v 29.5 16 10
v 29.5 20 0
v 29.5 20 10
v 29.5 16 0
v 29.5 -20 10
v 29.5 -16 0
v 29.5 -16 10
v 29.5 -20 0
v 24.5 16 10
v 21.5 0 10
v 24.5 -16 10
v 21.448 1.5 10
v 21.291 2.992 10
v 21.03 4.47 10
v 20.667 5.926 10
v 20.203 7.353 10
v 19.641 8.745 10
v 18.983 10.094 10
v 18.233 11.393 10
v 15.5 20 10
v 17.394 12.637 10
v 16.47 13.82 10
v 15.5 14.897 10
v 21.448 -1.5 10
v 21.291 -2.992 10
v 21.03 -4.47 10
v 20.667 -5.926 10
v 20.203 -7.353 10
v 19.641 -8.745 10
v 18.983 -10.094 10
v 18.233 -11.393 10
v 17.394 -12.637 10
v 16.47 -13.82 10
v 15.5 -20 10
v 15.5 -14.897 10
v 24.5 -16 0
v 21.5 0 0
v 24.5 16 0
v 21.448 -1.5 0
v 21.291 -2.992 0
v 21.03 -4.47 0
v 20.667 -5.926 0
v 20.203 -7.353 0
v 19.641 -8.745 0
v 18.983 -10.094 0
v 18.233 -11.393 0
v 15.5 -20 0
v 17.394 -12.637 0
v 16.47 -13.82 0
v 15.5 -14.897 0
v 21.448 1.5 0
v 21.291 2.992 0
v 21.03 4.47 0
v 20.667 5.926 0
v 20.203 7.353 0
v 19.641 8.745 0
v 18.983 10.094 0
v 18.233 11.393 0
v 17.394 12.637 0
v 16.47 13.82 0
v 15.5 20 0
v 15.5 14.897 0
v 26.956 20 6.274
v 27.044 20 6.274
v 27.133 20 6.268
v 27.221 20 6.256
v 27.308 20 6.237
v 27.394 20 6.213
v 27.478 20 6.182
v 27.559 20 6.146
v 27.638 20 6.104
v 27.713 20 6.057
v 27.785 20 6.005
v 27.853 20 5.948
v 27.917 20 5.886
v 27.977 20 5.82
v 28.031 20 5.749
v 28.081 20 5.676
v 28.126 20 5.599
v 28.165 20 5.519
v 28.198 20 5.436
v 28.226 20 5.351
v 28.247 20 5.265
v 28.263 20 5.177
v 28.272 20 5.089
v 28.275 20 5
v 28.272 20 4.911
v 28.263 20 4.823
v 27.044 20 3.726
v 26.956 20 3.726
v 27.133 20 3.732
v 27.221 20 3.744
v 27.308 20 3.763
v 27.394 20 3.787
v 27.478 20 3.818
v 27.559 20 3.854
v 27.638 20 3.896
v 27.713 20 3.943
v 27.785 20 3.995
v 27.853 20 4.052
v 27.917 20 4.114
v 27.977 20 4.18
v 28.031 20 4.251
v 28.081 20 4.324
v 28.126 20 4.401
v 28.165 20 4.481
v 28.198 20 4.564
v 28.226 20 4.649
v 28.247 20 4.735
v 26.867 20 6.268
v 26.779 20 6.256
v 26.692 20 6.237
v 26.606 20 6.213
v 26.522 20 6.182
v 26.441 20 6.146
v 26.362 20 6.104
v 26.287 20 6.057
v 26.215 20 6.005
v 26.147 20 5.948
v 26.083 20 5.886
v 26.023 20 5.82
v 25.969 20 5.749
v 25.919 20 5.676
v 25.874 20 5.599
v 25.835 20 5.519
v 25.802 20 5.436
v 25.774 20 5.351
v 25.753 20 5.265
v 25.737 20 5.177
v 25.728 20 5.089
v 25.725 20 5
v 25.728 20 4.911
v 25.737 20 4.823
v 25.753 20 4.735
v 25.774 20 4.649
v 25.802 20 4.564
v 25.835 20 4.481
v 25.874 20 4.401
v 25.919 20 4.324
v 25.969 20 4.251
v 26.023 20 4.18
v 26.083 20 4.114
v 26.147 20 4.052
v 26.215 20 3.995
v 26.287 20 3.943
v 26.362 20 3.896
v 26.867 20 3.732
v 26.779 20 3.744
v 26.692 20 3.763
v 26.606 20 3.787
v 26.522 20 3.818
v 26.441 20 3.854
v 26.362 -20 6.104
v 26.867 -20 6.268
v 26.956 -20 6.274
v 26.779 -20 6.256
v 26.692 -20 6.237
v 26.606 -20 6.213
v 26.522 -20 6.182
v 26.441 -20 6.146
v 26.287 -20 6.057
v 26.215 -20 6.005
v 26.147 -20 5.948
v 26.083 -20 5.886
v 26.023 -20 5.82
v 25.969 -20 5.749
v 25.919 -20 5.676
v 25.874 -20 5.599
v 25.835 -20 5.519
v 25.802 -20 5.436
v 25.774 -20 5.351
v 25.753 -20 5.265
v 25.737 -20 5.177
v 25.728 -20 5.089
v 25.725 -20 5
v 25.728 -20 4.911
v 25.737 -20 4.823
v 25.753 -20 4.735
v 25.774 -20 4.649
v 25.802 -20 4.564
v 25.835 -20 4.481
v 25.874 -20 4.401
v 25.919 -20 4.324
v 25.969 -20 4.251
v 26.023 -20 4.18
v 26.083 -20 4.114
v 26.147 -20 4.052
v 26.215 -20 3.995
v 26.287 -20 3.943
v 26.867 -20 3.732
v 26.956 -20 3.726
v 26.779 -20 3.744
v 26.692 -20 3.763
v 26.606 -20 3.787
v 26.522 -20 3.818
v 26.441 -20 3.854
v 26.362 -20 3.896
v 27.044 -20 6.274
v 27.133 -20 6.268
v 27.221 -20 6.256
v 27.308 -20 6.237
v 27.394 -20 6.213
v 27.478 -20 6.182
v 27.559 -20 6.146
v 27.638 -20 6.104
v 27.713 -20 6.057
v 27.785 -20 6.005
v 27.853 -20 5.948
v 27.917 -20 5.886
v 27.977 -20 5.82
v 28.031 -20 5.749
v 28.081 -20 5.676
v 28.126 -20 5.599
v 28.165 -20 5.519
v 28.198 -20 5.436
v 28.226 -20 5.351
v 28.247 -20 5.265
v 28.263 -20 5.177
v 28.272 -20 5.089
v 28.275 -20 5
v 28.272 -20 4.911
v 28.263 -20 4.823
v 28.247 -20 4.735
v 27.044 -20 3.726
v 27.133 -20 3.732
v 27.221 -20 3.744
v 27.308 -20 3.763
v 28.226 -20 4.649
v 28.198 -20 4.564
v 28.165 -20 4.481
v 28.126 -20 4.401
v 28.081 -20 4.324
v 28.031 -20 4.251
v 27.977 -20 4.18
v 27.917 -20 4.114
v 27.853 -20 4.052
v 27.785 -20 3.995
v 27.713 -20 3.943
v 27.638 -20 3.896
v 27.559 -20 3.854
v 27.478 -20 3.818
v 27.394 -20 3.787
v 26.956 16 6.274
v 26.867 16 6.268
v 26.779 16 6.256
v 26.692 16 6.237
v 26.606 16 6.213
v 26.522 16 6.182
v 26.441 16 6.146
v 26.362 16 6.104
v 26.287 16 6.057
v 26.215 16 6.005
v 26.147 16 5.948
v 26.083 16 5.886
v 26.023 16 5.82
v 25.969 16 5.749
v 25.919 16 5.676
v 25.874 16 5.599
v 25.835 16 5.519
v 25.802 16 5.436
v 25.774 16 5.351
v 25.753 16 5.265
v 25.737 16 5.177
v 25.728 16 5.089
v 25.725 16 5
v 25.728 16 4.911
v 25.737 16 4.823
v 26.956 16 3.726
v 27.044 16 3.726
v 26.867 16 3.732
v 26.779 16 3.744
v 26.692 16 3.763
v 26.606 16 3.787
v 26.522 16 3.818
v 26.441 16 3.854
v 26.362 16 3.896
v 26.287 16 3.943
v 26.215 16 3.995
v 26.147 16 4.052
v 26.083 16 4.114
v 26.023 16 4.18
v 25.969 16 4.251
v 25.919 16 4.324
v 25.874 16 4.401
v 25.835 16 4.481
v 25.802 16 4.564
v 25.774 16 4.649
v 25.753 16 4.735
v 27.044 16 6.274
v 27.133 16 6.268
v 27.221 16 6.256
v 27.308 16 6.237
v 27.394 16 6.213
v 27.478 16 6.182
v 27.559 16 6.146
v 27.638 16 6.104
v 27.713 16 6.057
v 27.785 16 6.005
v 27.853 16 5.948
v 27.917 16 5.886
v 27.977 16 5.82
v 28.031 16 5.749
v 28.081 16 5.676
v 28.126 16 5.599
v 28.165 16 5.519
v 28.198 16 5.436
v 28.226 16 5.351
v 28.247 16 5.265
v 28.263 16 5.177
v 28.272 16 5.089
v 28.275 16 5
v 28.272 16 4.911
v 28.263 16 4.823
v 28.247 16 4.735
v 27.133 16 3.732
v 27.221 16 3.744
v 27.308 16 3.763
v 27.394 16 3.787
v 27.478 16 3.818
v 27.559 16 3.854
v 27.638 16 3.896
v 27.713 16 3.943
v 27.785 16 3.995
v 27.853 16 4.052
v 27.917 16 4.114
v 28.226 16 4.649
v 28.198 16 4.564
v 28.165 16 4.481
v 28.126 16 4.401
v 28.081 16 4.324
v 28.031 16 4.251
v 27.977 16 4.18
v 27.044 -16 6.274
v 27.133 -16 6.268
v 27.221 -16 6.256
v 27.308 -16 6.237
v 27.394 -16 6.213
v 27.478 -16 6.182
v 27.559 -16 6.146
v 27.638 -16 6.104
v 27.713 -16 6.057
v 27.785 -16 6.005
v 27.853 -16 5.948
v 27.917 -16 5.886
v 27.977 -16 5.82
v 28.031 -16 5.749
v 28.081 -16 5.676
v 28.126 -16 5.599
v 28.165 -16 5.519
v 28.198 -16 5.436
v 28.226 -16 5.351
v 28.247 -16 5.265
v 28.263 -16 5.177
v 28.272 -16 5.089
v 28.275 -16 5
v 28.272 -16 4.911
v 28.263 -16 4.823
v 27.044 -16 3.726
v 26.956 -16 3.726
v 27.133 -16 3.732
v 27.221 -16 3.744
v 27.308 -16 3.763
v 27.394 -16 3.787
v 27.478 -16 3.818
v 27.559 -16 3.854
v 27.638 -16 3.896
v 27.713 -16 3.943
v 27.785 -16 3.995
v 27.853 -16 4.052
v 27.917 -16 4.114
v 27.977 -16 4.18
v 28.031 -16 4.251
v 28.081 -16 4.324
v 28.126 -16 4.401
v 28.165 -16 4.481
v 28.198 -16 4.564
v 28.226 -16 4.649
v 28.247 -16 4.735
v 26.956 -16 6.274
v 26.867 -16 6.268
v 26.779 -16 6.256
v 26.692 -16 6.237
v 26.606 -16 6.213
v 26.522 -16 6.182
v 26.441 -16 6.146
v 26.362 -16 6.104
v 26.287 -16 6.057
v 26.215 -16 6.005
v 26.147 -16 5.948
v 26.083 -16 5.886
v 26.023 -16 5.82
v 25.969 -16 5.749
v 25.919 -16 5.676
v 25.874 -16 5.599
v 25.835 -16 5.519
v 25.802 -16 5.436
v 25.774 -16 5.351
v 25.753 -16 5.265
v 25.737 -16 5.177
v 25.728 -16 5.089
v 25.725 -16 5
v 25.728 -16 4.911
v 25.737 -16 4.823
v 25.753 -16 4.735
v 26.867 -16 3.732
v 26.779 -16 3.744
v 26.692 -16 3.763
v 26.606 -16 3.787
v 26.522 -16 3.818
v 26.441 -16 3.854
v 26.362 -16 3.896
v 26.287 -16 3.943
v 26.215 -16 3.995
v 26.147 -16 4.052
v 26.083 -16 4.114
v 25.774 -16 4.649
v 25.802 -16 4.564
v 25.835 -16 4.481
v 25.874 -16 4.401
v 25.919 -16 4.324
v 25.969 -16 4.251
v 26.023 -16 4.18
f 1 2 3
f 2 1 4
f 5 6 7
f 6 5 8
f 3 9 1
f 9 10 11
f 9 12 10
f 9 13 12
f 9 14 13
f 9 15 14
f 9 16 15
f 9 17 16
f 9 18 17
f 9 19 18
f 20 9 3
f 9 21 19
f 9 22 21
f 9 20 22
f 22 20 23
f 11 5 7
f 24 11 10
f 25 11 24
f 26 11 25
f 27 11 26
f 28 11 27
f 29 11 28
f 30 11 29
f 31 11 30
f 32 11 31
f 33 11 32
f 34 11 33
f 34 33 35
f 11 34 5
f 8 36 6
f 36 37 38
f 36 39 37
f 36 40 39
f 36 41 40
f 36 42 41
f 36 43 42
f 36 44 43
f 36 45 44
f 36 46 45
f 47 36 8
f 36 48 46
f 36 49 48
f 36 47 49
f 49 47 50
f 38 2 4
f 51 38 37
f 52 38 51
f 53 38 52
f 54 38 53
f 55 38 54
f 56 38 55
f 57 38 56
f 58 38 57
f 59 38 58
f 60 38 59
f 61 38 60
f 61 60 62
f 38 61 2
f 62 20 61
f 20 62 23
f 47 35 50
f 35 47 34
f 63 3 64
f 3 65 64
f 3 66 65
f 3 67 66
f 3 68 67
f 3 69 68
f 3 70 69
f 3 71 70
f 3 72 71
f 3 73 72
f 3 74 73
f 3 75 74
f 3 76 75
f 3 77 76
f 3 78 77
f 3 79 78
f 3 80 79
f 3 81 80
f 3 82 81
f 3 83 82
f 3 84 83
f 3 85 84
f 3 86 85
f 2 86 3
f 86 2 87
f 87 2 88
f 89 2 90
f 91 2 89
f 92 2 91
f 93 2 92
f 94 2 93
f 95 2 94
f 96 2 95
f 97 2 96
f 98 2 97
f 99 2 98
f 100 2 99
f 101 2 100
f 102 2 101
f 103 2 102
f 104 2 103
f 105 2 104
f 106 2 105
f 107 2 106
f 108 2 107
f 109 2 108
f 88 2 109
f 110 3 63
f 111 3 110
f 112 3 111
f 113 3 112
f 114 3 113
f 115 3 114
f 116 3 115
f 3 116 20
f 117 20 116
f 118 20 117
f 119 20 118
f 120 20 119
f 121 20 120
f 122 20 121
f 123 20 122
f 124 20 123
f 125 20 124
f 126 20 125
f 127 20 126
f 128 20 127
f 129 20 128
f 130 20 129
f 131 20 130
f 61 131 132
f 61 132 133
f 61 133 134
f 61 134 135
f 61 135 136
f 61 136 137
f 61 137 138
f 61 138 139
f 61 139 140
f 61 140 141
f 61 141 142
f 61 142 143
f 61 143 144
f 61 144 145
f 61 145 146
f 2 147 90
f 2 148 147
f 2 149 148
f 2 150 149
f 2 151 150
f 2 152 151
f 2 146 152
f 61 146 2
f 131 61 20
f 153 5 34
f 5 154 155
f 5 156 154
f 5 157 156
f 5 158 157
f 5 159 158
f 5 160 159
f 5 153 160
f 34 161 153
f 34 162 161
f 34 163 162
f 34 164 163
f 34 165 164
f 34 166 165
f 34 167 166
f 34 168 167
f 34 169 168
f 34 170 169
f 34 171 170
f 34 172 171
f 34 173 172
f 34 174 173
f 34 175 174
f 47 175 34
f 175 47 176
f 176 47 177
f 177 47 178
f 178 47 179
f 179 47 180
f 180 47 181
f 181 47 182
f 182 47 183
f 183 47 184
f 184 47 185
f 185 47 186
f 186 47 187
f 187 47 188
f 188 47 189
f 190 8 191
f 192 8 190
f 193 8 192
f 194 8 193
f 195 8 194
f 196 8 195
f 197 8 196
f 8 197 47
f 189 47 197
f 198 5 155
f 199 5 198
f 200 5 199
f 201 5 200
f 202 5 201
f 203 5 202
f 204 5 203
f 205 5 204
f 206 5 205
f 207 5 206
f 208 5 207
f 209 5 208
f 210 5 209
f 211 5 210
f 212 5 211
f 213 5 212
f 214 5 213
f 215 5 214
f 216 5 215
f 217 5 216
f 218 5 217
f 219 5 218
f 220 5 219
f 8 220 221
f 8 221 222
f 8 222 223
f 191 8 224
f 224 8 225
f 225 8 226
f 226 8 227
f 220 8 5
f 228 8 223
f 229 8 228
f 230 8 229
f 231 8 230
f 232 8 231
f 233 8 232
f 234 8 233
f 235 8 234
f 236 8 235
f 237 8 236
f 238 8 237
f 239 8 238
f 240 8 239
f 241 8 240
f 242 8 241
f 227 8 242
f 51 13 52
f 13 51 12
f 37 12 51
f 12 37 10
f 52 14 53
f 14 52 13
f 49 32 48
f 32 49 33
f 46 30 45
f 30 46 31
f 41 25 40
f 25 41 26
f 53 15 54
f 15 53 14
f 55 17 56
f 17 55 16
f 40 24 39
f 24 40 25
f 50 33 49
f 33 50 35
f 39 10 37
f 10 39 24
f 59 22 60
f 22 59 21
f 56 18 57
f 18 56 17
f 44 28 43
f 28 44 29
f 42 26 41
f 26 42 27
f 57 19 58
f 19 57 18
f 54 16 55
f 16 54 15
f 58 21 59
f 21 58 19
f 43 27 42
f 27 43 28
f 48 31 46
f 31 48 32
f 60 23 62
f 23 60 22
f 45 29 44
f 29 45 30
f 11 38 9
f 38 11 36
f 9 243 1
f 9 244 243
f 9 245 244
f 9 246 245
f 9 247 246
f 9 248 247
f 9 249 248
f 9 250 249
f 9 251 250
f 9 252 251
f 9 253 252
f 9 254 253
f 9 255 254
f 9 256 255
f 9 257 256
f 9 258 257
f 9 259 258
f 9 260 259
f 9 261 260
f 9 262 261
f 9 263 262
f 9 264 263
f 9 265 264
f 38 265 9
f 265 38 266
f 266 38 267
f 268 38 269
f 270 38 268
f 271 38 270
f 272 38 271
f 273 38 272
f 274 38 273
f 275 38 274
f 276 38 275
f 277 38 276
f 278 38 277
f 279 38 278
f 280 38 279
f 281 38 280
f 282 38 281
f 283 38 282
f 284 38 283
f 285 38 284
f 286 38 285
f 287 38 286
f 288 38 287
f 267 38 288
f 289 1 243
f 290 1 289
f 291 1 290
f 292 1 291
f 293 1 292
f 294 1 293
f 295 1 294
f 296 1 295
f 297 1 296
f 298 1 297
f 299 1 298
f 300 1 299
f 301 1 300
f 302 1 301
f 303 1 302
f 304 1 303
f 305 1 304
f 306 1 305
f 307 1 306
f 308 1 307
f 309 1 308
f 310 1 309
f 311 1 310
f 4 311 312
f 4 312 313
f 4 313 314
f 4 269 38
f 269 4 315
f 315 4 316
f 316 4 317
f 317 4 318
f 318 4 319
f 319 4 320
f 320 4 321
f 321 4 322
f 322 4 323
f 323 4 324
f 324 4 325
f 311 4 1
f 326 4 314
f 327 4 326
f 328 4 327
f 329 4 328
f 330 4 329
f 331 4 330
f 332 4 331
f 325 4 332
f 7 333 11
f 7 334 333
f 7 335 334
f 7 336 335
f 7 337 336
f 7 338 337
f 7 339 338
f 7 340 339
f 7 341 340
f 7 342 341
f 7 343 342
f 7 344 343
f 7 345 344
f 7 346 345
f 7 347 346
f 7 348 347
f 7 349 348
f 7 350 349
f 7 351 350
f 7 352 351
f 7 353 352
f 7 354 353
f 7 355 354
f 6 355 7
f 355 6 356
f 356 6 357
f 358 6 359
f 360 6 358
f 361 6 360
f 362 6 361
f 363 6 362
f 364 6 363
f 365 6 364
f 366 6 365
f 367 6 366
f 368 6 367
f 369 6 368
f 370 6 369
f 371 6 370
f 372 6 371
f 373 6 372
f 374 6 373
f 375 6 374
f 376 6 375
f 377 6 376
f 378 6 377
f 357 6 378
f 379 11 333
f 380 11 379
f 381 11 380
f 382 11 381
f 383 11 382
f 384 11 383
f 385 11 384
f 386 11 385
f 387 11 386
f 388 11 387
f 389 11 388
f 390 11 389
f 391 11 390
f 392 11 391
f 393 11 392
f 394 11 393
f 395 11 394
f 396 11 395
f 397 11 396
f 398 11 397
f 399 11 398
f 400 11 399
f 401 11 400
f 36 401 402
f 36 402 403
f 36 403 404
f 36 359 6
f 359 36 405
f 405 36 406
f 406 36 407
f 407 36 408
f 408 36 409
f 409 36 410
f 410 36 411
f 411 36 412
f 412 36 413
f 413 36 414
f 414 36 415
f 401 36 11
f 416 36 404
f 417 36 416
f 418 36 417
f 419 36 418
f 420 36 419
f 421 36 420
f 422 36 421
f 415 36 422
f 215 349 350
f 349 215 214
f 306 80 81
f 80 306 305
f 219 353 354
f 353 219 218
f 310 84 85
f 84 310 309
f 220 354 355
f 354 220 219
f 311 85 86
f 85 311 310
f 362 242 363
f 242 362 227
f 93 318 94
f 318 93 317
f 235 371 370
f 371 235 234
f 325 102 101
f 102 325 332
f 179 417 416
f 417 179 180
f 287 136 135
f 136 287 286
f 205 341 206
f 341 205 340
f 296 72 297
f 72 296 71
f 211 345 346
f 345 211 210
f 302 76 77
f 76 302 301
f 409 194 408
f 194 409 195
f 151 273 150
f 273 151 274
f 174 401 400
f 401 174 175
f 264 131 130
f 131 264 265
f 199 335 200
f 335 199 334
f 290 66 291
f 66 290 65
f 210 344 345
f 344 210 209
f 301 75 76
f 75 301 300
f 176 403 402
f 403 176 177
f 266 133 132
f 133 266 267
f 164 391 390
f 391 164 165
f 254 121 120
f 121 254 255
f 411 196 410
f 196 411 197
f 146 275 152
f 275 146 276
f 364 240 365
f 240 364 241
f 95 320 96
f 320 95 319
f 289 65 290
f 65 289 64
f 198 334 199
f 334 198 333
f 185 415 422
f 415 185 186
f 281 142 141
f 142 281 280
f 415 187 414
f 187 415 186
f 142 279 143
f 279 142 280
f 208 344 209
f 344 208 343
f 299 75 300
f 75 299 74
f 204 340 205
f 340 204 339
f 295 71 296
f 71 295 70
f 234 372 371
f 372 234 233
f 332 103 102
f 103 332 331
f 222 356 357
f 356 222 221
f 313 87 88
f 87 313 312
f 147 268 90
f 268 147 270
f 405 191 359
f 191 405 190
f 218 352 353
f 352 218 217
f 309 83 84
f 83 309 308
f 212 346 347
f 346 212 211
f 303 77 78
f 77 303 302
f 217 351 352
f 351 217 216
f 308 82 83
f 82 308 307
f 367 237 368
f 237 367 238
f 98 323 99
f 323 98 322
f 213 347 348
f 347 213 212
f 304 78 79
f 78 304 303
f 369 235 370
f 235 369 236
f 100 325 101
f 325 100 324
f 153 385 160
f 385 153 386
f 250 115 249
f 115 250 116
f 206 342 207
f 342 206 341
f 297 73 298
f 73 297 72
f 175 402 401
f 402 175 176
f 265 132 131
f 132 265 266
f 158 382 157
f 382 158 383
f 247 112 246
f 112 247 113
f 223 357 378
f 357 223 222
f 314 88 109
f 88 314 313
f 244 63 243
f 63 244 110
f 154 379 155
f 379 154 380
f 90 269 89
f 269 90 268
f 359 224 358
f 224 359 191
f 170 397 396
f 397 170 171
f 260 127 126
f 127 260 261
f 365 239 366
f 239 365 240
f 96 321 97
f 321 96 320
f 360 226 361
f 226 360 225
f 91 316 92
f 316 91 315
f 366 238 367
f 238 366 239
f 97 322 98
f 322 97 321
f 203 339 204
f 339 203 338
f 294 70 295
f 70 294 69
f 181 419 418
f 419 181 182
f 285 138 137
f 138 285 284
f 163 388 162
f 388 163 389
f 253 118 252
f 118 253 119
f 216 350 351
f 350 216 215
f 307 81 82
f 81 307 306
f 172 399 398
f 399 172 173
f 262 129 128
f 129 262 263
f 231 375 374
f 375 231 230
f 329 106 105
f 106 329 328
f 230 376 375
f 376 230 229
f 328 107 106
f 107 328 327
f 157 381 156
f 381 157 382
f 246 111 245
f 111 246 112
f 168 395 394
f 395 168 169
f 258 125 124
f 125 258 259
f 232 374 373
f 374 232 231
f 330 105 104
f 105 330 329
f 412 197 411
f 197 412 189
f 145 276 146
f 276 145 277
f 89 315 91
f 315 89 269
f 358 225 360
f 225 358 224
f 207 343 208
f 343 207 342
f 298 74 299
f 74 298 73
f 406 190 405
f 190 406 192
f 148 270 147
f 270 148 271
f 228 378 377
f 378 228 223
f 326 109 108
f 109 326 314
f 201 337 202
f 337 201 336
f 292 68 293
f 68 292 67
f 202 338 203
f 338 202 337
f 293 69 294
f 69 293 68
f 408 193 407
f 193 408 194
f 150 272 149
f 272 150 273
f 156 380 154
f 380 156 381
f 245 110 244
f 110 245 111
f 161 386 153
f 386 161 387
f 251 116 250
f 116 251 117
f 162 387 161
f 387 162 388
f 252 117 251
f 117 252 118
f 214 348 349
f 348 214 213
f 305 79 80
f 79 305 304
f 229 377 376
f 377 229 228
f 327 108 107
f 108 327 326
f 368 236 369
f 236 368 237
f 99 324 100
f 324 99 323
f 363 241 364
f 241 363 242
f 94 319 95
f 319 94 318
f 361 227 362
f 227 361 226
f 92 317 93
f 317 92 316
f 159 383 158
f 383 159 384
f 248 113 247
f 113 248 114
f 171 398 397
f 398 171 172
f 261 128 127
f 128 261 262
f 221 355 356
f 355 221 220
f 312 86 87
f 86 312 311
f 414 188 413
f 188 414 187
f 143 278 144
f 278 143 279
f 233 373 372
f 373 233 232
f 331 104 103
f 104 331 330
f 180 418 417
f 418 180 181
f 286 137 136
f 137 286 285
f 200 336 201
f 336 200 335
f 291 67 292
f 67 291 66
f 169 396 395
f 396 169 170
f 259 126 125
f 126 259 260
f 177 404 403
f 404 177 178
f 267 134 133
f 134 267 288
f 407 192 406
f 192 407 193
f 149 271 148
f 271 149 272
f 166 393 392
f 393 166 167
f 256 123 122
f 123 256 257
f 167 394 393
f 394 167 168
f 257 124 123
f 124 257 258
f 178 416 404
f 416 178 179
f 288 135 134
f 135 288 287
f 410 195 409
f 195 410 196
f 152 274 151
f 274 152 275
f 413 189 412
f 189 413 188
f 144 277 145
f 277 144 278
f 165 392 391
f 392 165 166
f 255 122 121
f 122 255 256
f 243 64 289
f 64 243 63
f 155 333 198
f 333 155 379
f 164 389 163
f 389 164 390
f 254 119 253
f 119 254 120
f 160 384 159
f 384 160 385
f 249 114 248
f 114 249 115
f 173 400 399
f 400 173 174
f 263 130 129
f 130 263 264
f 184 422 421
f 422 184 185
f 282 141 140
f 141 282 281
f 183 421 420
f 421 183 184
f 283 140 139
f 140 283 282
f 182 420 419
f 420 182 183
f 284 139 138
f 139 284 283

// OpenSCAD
difference() {
    translate([43 / 2 - 6, -40 / 2, 0]) cube([14, 40, 10]);
    cylinder(d = 43, h = 20, $fn = 90);
    translate([43 / 2 - 6 + 14 - 5, -16, 0]) cube([6, 32, 12]);
    translate([43 / 2 - 6 + 14 - 2.5, 25, 5]) rotate([90, 0, 0]) cylinder(d = 2.55, h = 50, $fn = 90);
}
